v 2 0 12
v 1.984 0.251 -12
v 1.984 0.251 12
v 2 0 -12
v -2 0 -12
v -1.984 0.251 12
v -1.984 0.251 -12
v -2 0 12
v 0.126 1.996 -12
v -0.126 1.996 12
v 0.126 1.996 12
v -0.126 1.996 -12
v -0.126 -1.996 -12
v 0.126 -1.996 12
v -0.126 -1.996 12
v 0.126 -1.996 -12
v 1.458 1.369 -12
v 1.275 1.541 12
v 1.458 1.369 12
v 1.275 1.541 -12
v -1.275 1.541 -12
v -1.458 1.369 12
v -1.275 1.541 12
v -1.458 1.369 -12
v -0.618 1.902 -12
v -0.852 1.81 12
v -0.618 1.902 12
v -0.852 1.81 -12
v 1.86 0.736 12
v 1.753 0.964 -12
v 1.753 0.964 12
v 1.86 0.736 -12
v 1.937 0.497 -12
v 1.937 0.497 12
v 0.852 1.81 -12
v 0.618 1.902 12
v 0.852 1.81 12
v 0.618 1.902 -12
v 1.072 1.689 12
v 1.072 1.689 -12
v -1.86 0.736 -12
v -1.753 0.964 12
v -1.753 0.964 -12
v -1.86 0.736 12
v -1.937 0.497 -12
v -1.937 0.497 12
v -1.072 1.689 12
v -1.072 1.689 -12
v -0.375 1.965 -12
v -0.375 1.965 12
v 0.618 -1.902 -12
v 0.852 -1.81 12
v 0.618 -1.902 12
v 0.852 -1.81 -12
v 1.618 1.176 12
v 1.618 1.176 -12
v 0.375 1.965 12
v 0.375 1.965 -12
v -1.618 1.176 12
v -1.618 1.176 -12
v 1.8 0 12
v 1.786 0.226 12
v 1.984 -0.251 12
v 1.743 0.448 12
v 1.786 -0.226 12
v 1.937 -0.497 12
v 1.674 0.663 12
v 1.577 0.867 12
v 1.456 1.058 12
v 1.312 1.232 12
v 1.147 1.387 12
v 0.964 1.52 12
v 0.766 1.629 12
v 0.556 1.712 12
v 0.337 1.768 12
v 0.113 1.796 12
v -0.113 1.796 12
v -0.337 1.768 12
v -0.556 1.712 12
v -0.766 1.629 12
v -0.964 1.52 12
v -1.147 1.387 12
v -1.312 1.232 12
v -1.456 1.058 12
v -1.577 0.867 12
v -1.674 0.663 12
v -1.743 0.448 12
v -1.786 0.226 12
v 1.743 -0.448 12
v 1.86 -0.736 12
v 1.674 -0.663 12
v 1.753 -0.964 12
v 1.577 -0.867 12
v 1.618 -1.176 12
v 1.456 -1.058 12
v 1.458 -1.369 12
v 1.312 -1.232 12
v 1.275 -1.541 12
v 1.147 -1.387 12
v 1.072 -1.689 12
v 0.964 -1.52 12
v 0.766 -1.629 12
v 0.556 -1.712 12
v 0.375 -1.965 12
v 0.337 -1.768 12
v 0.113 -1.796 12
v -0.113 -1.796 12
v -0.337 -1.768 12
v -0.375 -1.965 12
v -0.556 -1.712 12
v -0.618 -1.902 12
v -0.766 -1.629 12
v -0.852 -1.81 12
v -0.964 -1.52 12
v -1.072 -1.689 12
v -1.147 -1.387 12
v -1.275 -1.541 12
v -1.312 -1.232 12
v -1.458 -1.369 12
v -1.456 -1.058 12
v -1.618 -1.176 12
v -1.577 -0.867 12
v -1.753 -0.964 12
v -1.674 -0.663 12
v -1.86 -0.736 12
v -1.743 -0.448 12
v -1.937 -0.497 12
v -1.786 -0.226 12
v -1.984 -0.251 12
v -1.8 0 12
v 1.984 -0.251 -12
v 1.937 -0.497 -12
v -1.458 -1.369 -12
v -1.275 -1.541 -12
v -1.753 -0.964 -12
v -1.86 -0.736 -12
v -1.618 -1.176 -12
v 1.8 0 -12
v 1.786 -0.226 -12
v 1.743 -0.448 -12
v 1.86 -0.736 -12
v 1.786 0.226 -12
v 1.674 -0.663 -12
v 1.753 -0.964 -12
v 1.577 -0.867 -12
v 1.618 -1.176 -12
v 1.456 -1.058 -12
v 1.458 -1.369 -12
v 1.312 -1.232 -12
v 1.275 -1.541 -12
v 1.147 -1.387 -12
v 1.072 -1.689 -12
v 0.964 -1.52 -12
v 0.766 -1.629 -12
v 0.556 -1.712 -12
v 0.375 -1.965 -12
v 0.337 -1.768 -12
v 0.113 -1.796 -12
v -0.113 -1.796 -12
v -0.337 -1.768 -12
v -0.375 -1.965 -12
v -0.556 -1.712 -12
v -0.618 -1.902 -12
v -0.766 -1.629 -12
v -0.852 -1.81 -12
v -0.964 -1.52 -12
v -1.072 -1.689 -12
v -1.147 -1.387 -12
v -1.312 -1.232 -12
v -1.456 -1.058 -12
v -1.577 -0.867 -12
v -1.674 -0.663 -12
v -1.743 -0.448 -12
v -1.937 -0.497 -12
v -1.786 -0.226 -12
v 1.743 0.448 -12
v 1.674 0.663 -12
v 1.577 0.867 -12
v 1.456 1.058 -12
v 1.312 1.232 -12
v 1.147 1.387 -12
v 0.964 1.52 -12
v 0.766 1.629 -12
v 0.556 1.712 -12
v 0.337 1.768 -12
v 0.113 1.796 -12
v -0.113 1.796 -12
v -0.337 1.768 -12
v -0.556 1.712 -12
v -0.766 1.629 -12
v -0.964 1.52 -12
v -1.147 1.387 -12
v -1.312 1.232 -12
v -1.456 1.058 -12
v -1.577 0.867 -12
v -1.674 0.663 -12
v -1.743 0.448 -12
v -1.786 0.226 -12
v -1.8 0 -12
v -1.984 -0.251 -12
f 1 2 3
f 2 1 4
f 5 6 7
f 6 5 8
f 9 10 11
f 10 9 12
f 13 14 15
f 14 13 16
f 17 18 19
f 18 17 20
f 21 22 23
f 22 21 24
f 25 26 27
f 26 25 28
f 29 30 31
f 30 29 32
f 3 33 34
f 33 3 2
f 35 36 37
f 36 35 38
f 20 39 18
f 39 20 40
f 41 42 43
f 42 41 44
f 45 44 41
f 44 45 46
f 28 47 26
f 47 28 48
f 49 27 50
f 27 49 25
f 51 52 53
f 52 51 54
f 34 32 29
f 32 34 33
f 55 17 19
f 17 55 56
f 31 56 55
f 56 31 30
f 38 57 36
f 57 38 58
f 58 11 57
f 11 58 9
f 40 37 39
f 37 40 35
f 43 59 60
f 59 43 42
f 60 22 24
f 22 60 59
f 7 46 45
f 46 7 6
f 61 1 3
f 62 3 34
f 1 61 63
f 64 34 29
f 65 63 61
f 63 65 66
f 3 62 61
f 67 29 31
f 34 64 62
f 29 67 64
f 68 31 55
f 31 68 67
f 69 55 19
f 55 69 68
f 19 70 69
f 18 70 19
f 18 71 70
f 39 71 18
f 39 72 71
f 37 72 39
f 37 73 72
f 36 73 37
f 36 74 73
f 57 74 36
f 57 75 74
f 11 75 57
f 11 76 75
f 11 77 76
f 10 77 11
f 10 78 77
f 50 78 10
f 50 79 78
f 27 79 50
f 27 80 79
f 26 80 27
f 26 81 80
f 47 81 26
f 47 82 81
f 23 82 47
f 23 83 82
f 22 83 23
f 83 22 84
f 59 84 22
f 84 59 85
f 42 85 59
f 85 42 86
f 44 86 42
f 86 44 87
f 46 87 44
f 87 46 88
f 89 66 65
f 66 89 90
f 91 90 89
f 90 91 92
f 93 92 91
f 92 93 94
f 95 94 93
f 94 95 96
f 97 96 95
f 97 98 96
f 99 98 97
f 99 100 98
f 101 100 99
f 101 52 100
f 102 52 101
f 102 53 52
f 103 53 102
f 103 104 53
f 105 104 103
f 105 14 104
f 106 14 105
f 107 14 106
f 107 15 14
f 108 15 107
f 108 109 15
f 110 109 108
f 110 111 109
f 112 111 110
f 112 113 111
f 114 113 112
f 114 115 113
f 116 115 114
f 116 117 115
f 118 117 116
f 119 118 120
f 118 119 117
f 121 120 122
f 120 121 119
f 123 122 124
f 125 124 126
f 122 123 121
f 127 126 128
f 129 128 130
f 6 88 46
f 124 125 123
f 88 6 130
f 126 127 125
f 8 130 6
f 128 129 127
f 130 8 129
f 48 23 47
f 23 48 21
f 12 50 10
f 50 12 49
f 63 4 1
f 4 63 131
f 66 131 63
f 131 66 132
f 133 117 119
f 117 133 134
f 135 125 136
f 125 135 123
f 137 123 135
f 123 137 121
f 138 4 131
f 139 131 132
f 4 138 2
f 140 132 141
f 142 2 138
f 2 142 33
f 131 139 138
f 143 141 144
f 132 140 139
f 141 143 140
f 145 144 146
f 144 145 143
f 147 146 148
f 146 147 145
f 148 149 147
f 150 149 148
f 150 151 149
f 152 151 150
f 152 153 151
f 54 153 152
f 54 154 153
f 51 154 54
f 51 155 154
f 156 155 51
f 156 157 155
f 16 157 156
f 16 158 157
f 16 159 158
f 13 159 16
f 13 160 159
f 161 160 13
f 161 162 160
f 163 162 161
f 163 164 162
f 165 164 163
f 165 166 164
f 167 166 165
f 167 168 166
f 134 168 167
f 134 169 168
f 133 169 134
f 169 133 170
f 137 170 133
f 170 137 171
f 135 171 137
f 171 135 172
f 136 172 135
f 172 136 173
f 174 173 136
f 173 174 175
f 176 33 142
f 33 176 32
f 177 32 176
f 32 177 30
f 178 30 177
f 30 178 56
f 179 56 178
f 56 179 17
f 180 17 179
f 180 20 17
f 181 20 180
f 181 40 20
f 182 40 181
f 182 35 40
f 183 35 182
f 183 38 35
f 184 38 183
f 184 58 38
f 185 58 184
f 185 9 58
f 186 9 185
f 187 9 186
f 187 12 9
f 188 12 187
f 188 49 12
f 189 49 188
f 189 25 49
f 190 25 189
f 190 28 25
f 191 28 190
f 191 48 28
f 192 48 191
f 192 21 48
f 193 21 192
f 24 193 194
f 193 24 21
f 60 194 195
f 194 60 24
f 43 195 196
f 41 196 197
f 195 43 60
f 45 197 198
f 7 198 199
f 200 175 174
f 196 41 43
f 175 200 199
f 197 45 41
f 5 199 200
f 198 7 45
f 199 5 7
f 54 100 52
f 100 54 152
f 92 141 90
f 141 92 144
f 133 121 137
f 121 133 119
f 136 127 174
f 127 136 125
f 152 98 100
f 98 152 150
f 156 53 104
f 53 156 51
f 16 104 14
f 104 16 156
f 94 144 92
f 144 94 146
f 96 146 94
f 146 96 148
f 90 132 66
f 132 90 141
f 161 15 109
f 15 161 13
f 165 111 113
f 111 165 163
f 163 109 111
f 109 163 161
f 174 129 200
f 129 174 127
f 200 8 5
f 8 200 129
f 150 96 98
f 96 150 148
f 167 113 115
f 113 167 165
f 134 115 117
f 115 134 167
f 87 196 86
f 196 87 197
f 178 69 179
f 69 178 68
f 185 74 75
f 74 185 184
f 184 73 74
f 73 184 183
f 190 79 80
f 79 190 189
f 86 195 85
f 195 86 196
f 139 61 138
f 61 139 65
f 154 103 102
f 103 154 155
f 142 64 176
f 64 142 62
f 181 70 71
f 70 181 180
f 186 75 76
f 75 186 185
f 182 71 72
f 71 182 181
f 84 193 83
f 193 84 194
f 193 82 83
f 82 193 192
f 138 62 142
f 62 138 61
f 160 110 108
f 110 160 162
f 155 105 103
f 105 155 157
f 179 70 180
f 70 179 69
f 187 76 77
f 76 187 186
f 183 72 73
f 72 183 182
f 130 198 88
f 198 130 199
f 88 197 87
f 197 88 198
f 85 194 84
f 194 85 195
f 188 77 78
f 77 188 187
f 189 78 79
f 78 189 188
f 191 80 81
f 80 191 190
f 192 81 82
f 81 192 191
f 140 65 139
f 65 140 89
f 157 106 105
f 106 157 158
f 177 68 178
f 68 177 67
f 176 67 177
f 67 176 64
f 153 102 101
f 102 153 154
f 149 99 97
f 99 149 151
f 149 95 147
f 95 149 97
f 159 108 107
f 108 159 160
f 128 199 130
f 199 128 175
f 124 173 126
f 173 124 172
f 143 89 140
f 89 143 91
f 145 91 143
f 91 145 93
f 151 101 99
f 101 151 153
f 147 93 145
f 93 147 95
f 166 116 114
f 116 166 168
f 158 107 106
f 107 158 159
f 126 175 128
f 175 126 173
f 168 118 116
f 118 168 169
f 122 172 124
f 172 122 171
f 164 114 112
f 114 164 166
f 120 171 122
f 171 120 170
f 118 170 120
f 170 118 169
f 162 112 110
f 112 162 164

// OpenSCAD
$fn = 50;


difference() {
	union() {
		translate(v = [0, 0, -12.0000000000]) {
			cylinder(h = 24, r = 2.0000000000);
		}
	}
	union() {
		translate(v = [0, 0, -100.0000000000]) {
			cylinder(h = 200, r = 1.8000000000);
		}
	}
}
